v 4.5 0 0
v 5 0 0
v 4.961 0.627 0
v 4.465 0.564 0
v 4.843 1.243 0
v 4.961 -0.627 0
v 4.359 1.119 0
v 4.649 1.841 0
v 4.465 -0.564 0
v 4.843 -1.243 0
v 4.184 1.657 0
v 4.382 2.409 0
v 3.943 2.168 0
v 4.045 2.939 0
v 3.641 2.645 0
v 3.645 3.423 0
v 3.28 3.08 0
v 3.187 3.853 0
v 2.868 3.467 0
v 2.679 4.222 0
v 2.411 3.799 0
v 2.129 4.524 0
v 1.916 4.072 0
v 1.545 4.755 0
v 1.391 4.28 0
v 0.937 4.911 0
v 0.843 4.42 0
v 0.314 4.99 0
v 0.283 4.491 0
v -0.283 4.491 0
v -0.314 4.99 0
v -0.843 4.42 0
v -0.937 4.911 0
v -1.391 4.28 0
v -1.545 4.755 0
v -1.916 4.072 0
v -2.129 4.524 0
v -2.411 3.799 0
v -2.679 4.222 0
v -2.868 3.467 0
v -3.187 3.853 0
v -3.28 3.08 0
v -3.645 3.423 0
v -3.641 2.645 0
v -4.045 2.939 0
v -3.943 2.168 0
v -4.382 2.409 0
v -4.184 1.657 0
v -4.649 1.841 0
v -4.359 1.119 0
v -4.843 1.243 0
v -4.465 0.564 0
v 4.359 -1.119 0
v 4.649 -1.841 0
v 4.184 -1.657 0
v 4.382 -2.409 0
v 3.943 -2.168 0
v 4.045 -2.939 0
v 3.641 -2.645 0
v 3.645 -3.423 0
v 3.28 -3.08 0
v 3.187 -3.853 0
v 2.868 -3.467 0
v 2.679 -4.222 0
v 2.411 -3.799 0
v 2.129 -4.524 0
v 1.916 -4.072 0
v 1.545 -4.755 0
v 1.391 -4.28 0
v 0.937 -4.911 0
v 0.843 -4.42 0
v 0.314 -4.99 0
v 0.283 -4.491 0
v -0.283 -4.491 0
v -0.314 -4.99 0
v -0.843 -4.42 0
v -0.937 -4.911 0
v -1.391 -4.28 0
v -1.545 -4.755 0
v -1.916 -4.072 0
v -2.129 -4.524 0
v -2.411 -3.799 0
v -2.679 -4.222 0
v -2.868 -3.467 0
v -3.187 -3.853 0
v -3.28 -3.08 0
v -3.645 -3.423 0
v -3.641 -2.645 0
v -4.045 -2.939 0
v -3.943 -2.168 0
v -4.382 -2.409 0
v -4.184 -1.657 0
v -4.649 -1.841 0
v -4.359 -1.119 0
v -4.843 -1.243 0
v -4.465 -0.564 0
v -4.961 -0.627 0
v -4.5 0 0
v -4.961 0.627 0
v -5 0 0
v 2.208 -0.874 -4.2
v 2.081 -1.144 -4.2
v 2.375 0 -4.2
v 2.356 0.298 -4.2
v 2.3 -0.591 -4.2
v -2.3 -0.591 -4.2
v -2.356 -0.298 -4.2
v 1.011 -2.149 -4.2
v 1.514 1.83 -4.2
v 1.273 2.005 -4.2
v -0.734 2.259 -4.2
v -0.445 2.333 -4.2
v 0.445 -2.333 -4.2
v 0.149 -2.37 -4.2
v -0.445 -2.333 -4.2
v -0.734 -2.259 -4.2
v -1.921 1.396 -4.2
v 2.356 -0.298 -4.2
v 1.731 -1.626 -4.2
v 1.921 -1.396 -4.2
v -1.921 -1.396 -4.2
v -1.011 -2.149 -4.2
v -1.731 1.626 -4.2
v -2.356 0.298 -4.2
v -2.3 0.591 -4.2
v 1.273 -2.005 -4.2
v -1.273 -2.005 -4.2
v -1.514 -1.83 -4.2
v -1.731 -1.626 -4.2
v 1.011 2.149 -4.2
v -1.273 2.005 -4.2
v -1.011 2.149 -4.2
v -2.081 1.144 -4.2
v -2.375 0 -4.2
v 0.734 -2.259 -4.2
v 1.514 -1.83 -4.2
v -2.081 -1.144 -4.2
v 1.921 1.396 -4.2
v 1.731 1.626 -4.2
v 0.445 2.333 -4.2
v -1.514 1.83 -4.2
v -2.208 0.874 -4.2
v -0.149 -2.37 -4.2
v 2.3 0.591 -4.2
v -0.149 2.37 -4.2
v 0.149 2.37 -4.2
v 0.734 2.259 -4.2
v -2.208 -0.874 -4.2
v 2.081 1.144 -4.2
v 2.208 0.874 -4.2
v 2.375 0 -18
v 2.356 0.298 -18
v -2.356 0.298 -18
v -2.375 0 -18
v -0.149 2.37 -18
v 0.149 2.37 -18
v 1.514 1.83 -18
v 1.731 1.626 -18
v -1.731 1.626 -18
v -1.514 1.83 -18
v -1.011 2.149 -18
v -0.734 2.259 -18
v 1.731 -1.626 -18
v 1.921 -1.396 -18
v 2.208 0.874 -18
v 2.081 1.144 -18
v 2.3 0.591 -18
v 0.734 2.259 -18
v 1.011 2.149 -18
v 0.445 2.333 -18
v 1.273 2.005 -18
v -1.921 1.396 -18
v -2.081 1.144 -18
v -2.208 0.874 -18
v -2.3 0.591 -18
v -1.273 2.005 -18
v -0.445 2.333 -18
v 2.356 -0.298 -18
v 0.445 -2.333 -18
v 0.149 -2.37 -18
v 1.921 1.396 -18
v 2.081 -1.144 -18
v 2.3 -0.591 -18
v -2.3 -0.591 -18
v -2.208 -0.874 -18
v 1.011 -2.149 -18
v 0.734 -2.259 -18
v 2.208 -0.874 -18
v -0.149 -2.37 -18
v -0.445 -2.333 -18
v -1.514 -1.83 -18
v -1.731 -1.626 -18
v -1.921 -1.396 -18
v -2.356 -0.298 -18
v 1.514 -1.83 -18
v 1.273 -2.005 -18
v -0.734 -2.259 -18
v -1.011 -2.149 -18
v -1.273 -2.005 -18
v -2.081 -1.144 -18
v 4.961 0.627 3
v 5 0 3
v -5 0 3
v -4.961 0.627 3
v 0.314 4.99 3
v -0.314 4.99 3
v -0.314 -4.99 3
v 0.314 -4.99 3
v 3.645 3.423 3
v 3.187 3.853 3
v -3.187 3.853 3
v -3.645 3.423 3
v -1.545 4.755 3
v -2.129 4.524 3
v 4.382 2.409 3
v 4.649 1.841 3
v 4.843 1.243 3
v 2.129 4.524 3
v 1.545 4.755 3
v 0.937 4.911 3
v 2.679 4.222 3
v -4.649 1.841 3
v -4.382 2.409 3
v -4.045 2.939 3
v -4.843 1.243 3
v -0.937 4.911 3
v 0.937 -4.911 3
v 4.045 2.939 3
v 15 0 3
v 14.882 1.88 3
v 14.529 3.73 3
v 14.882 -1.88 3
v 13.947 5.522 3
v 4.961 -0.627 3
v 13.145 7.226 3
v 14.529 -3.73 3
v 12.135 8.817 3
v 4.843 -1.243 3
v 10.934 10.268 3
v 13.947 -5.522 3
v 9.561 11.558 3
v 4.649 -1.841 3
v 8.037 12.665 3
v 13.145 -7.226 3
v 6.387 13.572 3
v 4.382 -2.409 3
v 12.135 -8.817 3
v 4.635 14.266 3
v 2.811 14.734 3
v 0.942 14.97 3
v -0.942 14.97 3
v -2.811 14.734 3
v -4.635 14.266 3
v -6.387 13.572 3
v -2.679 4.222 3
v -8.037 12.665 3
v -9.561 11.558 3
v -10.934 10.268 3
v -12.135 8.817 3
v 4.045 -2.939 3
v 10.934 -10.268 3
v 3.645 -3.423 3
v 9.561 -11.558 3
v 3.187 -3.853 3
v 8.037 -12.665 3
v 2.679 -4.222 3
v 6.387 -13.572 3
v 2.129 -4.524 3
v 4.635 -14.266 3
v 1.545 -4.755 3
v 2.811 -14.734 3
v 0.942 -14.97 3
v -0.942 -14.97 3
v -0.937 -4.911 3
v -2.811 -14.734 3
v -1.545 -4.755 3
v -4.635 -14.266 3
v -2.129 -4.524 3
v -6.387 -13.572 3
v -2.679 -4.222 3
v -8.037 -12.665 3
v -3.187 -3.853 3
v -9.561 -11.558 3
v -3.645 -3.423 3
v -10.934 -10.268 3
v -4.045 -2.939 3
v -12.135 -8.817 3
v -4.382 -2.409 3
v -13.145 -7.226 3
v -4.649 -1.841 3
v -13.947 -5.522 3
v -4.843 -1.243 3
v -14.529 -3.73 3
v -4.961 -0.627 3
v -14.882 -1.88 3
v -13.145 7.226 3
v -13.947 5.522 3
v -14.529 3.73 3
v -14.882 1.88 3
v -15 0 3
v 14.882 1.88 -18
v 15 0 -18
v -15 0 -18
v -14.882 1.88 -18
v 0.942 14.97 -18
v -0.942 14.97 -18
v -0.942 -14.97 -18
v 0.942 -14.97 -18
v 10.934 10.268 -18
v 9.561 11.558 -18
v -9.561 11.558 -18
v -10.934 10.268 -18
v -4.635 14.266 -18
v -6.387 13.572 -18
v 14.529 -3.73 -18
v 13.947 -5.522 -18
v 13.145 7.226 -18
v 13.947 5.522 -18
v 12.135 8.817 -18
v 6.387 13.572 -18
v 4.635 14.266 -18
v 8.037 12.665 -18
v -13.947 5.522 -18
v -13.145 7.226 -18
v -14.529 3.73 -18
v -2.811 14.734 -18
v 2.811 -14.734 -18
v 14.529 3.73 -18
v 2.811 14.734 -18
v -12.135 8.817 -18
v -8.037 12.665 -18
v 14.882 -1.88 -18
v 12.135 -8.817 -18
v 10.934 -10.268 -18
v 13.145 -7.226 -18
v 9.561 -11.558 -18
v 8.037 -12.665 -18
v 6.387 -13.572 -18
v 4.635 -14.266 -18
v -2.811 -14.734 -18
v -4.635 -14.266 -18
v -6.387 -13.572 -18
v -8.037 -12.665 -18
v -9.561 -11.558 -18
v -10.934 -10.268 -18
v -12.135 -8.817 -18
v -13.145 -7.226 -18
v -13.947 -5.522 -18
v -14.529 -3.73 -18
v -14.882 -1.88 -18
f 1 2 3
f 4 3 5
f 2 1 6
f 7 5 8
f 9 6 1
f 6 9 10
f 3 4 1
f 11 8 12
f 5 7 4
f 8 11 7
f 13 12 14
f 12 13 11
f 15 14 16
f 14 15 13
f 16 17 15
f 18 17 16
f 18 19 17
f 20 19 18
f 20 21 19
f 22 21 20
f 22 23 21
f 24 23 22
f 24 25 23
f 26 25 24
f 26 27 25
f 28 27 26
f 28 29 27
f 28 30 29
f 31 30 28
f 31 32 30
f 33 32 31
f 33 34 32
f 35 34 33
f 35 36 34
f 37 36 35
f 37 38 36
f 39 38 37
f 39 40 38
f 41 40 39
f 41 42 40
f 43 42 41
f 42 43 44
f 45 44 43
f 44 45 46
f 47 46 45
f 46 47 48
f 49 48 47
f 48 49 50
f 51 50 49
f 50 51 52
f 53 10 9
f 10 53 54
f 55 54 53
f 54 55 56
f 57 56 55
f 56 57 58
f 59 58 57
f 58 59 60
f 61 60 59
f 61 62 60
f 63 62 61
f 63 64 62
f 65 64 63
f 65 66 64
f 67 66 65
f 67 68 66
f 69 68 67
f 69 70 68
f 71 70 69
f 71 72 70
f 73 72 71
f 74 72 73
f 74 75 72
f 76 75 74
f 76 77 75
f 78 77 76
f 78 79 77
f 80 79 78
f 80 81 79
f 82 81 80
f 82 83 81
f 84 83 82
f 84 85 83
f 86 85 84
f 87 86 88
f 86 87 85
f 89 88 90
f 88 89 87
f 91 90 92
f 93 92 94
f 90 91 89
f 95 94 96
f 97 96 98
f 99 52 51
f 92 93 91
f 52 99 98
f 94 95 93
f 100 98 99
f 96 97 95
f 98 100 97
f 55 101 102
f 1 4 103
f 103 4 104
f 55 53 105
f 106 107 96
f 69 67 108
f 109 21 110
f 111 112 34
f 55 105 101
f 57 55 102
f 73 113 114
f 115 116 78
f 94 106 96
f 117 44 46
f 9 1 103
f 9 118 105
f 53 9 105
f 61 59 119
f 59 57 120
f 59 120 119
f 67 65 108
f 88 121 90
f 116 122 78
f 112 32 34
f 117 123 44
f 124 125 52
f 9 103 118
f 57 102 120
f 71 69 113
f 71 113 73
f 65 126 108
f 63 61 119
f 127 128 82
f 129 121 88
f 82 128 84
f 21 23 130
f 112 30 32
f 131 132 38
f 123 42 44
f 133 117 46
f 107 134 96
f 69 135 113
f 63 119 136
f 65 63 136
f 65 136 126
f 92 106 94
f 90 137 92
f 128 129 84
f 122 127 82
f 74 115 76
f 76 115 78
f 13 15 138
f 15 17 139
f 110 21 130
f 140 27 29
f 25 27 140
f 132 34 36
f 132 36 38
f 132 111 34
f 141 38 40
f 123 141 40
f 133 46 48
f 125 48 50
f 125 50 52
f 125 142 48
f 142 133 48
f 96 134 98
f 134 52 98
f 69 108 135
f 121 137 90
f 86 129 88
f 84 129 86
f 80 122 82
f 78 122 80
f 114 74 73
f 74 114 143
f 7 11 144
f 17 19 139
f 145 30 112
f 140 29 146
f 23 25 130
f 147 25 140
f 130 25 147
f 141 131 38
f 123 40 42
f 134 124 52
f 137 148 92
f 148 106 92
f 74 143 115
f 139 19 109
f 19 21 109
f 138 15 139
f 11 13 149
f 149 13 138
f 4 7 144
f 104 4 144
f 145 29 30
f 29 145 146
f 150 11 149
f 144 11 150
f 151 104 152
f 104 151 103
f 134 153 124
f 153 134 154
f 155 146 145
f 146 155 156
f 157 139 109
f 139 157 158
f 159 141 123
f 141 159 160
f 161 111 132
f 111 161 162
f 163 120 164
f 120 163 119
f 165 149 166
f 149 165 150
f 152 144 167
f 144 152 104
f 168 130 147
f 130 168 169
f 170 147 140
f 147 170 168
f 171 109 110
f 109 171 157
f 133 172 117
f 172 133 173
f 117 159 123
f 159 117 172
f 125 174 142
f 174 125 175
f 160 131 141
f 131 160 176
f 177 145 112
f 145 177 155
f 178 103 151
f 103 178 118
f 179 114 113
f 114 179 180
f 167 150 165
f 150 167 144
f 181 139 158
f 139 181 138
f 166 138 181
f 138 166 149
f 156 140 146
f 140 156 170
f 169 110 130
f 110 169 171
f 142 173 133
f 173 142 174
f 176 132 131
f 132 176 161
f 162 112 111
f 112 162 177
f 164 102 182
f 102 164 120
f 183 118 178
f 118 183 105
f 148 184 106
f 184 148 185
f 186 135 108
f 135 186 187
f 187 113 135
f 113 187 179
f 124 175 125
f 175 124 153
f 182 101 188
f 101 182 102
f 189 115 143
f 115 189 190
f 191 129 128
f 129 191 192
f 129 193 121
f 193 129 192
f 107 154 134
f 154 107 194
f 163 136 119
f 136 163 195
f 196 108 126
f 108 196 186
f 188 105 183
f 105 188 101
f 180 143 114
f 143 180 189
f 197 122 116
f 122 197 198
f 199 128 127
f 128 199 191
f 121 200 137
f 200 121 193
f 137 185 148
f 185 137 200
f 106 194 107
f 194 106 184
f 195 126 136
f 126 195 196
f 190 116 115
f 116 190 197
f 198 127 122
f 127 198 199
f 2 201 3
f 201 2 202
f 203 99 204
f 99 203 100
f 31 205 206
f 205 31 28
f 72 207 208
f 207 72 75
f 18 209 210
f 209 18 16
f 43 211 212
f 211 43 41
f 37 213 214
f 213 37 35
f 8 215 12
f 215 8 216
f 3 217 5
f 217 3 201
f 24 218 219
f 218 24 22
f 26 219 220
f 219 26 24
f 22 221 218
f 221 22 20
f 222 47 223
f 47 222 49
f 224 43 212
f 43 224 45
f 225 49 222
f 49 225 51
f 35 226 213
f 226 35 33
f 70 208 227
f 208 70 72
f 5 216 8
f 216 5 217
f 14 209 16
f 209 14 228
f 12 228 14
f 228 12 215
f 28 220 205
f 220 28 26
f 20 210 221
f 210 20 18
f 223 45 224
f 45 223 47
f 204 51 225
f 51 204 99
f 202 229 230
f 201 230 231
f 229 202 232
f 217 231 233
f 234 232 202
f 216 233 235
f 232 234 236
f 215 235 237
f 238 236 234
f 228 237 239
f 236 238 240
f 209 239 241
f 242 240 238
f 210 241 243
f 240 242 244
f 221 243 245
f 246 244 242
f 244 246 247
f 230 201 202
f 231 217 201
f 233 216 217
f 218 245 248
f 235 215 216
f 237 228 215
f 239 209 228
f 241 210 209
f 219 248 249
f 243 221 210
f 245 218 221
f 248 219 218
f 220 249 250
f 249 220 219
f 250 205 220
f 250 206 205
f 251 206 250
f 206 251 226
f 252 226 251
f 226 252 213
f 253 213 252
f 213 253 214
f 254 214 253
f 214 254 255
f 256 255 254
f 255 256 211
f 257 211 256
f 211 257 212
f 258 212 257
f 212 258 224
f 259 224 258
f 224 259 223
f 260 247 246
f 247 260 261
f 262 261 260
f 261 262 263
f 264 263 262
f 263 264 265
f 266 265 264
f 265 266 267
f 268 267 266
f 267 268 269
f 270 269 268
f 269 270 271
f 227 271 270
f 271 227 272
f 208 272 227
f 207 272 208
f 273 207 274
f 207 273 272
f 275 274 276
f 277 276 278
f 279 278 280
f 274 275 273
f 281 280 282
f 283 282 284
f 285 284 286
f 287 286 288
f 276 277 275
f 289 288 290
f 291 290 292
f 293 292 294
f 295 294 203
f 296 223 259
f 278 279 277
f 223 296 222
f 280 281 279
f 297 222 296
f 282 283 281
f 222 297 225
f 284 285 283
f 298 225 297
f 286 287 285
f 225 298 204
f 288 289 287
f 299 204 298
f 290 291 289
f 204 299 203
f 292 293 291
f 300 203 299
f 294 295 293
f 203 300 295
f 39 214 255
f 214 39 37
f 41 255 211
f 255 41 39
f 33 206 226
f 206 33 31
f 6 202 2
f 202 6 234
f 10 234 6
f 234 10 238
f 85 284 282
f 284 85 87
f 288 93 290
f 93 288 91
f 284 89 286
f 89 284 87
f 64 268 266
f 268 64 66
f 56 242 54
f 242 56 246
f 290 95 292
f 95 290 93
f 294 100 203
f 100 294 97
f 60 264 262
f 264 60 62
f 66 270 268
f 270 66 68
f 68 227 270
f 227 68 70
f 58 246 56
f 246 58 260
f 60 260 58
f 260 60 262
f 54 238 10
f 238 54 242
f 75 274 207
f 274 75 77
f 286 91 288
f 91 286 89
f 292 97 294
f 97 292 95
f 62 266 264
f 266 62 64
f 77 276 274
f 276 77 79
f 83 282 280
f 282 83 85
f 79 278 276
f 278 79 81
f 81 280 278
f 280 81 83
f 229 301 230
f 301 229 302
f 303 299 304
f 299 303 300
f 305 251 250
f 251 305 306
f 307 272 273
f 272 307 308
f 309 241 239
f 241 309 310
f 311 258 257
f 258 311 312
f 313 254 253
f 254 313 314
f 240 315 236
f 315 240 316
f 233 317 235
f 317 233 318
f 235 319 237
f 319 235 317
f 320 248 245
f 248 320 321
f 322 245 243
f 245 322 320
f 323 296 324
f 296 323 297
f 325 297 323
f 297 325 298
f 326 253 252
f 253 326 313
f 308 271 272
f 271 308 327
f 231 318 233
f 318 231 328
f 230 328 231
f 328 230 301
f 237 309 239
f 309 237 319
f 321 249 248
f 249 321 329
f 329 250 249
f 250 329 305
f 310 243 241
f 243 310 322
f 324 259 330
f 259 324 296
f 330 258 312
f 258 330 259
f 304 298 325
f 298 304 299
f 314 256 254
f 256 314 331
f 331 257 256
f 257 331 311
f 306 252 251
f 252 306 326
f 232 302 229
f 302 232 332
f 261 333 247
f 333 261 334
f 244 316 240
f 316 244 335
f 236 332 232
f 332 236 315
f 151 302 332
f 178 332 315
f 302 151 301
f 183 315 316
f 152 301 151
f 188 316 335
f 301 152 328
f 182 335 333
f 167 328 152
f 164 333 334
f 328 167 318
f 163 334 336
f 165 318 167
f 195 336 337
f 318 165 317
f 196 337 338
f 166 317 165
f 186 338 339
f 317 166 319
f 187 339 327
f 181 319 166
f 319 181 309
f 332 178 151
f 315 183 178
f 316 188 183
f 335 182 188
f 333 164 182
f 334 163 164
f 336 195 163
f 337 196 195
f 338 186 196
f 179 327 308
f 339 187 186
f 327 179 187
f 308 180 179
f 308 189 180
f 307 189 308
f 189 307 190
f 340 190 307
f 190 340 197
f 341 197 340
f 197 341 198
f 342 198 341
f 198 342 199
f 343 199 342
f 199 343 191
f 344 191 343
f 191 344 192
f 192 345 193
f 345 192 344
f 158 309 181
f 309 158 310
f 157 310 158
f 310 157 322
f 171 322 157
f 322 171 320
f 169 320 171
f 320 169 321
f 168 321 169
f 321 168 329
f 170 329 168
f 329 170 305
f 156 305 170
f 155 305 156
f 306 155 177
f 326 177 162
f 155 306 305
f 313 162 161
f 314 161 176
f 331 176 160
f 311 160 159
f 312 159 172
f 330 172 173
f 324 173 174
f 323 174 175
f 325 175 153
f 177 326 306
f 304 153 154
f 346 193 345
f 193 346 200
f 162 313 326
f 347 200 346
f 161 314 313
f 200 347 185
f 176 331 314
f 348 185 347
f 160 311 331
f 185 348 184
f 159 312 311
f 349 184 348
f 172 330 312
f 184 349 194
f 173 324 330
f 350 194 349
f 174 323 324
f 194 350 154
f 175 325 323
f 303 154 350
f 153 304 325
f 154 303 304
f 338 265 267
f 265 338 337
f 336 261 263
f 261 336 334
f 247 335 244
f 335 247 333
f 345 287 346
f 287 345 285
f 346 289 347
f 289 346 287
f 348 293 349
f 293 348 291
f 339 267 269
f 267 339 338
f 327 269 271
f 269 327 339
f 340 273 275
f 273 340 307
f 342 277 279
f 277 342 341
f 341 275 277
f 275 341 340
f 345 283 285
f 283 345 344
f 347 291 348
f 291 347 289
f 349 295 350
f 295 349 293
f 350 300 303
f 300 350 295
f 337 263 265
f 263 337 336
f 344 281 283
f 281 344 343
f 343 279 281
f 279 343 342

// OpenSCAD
$fn = 50;

difference() {
	union() {
		translate(v = [0, 0, -18.0]) {
			cylinder(h = 21, r = 15.0);
		}
	}
	union() {
		translate(v = [0, 0, 0]) {
			rotate(a = [0, 0, 0]) {
				difference() {
					union() {
						translate(v = [0, 0, -21.0]) {
							cylinder(h = 21, r = 2.25);
						}
						translate(v = [0, 0, -4.2]) {
							cylinder(h = 4.2, r1 = 2.375, r2 = 4.5);
						}
						translate(v = [0, 0, -21.0]) {
							cylinder(h = 21, r = 2.375);
						}
						translate(v = [0, 0, -21.0]) {
							cylinder(h = 21, r = 2.25);
						}
					}
					union();
				}
			}
		}
		#cylinder(h = 3, r = 5.0);
	}
}
